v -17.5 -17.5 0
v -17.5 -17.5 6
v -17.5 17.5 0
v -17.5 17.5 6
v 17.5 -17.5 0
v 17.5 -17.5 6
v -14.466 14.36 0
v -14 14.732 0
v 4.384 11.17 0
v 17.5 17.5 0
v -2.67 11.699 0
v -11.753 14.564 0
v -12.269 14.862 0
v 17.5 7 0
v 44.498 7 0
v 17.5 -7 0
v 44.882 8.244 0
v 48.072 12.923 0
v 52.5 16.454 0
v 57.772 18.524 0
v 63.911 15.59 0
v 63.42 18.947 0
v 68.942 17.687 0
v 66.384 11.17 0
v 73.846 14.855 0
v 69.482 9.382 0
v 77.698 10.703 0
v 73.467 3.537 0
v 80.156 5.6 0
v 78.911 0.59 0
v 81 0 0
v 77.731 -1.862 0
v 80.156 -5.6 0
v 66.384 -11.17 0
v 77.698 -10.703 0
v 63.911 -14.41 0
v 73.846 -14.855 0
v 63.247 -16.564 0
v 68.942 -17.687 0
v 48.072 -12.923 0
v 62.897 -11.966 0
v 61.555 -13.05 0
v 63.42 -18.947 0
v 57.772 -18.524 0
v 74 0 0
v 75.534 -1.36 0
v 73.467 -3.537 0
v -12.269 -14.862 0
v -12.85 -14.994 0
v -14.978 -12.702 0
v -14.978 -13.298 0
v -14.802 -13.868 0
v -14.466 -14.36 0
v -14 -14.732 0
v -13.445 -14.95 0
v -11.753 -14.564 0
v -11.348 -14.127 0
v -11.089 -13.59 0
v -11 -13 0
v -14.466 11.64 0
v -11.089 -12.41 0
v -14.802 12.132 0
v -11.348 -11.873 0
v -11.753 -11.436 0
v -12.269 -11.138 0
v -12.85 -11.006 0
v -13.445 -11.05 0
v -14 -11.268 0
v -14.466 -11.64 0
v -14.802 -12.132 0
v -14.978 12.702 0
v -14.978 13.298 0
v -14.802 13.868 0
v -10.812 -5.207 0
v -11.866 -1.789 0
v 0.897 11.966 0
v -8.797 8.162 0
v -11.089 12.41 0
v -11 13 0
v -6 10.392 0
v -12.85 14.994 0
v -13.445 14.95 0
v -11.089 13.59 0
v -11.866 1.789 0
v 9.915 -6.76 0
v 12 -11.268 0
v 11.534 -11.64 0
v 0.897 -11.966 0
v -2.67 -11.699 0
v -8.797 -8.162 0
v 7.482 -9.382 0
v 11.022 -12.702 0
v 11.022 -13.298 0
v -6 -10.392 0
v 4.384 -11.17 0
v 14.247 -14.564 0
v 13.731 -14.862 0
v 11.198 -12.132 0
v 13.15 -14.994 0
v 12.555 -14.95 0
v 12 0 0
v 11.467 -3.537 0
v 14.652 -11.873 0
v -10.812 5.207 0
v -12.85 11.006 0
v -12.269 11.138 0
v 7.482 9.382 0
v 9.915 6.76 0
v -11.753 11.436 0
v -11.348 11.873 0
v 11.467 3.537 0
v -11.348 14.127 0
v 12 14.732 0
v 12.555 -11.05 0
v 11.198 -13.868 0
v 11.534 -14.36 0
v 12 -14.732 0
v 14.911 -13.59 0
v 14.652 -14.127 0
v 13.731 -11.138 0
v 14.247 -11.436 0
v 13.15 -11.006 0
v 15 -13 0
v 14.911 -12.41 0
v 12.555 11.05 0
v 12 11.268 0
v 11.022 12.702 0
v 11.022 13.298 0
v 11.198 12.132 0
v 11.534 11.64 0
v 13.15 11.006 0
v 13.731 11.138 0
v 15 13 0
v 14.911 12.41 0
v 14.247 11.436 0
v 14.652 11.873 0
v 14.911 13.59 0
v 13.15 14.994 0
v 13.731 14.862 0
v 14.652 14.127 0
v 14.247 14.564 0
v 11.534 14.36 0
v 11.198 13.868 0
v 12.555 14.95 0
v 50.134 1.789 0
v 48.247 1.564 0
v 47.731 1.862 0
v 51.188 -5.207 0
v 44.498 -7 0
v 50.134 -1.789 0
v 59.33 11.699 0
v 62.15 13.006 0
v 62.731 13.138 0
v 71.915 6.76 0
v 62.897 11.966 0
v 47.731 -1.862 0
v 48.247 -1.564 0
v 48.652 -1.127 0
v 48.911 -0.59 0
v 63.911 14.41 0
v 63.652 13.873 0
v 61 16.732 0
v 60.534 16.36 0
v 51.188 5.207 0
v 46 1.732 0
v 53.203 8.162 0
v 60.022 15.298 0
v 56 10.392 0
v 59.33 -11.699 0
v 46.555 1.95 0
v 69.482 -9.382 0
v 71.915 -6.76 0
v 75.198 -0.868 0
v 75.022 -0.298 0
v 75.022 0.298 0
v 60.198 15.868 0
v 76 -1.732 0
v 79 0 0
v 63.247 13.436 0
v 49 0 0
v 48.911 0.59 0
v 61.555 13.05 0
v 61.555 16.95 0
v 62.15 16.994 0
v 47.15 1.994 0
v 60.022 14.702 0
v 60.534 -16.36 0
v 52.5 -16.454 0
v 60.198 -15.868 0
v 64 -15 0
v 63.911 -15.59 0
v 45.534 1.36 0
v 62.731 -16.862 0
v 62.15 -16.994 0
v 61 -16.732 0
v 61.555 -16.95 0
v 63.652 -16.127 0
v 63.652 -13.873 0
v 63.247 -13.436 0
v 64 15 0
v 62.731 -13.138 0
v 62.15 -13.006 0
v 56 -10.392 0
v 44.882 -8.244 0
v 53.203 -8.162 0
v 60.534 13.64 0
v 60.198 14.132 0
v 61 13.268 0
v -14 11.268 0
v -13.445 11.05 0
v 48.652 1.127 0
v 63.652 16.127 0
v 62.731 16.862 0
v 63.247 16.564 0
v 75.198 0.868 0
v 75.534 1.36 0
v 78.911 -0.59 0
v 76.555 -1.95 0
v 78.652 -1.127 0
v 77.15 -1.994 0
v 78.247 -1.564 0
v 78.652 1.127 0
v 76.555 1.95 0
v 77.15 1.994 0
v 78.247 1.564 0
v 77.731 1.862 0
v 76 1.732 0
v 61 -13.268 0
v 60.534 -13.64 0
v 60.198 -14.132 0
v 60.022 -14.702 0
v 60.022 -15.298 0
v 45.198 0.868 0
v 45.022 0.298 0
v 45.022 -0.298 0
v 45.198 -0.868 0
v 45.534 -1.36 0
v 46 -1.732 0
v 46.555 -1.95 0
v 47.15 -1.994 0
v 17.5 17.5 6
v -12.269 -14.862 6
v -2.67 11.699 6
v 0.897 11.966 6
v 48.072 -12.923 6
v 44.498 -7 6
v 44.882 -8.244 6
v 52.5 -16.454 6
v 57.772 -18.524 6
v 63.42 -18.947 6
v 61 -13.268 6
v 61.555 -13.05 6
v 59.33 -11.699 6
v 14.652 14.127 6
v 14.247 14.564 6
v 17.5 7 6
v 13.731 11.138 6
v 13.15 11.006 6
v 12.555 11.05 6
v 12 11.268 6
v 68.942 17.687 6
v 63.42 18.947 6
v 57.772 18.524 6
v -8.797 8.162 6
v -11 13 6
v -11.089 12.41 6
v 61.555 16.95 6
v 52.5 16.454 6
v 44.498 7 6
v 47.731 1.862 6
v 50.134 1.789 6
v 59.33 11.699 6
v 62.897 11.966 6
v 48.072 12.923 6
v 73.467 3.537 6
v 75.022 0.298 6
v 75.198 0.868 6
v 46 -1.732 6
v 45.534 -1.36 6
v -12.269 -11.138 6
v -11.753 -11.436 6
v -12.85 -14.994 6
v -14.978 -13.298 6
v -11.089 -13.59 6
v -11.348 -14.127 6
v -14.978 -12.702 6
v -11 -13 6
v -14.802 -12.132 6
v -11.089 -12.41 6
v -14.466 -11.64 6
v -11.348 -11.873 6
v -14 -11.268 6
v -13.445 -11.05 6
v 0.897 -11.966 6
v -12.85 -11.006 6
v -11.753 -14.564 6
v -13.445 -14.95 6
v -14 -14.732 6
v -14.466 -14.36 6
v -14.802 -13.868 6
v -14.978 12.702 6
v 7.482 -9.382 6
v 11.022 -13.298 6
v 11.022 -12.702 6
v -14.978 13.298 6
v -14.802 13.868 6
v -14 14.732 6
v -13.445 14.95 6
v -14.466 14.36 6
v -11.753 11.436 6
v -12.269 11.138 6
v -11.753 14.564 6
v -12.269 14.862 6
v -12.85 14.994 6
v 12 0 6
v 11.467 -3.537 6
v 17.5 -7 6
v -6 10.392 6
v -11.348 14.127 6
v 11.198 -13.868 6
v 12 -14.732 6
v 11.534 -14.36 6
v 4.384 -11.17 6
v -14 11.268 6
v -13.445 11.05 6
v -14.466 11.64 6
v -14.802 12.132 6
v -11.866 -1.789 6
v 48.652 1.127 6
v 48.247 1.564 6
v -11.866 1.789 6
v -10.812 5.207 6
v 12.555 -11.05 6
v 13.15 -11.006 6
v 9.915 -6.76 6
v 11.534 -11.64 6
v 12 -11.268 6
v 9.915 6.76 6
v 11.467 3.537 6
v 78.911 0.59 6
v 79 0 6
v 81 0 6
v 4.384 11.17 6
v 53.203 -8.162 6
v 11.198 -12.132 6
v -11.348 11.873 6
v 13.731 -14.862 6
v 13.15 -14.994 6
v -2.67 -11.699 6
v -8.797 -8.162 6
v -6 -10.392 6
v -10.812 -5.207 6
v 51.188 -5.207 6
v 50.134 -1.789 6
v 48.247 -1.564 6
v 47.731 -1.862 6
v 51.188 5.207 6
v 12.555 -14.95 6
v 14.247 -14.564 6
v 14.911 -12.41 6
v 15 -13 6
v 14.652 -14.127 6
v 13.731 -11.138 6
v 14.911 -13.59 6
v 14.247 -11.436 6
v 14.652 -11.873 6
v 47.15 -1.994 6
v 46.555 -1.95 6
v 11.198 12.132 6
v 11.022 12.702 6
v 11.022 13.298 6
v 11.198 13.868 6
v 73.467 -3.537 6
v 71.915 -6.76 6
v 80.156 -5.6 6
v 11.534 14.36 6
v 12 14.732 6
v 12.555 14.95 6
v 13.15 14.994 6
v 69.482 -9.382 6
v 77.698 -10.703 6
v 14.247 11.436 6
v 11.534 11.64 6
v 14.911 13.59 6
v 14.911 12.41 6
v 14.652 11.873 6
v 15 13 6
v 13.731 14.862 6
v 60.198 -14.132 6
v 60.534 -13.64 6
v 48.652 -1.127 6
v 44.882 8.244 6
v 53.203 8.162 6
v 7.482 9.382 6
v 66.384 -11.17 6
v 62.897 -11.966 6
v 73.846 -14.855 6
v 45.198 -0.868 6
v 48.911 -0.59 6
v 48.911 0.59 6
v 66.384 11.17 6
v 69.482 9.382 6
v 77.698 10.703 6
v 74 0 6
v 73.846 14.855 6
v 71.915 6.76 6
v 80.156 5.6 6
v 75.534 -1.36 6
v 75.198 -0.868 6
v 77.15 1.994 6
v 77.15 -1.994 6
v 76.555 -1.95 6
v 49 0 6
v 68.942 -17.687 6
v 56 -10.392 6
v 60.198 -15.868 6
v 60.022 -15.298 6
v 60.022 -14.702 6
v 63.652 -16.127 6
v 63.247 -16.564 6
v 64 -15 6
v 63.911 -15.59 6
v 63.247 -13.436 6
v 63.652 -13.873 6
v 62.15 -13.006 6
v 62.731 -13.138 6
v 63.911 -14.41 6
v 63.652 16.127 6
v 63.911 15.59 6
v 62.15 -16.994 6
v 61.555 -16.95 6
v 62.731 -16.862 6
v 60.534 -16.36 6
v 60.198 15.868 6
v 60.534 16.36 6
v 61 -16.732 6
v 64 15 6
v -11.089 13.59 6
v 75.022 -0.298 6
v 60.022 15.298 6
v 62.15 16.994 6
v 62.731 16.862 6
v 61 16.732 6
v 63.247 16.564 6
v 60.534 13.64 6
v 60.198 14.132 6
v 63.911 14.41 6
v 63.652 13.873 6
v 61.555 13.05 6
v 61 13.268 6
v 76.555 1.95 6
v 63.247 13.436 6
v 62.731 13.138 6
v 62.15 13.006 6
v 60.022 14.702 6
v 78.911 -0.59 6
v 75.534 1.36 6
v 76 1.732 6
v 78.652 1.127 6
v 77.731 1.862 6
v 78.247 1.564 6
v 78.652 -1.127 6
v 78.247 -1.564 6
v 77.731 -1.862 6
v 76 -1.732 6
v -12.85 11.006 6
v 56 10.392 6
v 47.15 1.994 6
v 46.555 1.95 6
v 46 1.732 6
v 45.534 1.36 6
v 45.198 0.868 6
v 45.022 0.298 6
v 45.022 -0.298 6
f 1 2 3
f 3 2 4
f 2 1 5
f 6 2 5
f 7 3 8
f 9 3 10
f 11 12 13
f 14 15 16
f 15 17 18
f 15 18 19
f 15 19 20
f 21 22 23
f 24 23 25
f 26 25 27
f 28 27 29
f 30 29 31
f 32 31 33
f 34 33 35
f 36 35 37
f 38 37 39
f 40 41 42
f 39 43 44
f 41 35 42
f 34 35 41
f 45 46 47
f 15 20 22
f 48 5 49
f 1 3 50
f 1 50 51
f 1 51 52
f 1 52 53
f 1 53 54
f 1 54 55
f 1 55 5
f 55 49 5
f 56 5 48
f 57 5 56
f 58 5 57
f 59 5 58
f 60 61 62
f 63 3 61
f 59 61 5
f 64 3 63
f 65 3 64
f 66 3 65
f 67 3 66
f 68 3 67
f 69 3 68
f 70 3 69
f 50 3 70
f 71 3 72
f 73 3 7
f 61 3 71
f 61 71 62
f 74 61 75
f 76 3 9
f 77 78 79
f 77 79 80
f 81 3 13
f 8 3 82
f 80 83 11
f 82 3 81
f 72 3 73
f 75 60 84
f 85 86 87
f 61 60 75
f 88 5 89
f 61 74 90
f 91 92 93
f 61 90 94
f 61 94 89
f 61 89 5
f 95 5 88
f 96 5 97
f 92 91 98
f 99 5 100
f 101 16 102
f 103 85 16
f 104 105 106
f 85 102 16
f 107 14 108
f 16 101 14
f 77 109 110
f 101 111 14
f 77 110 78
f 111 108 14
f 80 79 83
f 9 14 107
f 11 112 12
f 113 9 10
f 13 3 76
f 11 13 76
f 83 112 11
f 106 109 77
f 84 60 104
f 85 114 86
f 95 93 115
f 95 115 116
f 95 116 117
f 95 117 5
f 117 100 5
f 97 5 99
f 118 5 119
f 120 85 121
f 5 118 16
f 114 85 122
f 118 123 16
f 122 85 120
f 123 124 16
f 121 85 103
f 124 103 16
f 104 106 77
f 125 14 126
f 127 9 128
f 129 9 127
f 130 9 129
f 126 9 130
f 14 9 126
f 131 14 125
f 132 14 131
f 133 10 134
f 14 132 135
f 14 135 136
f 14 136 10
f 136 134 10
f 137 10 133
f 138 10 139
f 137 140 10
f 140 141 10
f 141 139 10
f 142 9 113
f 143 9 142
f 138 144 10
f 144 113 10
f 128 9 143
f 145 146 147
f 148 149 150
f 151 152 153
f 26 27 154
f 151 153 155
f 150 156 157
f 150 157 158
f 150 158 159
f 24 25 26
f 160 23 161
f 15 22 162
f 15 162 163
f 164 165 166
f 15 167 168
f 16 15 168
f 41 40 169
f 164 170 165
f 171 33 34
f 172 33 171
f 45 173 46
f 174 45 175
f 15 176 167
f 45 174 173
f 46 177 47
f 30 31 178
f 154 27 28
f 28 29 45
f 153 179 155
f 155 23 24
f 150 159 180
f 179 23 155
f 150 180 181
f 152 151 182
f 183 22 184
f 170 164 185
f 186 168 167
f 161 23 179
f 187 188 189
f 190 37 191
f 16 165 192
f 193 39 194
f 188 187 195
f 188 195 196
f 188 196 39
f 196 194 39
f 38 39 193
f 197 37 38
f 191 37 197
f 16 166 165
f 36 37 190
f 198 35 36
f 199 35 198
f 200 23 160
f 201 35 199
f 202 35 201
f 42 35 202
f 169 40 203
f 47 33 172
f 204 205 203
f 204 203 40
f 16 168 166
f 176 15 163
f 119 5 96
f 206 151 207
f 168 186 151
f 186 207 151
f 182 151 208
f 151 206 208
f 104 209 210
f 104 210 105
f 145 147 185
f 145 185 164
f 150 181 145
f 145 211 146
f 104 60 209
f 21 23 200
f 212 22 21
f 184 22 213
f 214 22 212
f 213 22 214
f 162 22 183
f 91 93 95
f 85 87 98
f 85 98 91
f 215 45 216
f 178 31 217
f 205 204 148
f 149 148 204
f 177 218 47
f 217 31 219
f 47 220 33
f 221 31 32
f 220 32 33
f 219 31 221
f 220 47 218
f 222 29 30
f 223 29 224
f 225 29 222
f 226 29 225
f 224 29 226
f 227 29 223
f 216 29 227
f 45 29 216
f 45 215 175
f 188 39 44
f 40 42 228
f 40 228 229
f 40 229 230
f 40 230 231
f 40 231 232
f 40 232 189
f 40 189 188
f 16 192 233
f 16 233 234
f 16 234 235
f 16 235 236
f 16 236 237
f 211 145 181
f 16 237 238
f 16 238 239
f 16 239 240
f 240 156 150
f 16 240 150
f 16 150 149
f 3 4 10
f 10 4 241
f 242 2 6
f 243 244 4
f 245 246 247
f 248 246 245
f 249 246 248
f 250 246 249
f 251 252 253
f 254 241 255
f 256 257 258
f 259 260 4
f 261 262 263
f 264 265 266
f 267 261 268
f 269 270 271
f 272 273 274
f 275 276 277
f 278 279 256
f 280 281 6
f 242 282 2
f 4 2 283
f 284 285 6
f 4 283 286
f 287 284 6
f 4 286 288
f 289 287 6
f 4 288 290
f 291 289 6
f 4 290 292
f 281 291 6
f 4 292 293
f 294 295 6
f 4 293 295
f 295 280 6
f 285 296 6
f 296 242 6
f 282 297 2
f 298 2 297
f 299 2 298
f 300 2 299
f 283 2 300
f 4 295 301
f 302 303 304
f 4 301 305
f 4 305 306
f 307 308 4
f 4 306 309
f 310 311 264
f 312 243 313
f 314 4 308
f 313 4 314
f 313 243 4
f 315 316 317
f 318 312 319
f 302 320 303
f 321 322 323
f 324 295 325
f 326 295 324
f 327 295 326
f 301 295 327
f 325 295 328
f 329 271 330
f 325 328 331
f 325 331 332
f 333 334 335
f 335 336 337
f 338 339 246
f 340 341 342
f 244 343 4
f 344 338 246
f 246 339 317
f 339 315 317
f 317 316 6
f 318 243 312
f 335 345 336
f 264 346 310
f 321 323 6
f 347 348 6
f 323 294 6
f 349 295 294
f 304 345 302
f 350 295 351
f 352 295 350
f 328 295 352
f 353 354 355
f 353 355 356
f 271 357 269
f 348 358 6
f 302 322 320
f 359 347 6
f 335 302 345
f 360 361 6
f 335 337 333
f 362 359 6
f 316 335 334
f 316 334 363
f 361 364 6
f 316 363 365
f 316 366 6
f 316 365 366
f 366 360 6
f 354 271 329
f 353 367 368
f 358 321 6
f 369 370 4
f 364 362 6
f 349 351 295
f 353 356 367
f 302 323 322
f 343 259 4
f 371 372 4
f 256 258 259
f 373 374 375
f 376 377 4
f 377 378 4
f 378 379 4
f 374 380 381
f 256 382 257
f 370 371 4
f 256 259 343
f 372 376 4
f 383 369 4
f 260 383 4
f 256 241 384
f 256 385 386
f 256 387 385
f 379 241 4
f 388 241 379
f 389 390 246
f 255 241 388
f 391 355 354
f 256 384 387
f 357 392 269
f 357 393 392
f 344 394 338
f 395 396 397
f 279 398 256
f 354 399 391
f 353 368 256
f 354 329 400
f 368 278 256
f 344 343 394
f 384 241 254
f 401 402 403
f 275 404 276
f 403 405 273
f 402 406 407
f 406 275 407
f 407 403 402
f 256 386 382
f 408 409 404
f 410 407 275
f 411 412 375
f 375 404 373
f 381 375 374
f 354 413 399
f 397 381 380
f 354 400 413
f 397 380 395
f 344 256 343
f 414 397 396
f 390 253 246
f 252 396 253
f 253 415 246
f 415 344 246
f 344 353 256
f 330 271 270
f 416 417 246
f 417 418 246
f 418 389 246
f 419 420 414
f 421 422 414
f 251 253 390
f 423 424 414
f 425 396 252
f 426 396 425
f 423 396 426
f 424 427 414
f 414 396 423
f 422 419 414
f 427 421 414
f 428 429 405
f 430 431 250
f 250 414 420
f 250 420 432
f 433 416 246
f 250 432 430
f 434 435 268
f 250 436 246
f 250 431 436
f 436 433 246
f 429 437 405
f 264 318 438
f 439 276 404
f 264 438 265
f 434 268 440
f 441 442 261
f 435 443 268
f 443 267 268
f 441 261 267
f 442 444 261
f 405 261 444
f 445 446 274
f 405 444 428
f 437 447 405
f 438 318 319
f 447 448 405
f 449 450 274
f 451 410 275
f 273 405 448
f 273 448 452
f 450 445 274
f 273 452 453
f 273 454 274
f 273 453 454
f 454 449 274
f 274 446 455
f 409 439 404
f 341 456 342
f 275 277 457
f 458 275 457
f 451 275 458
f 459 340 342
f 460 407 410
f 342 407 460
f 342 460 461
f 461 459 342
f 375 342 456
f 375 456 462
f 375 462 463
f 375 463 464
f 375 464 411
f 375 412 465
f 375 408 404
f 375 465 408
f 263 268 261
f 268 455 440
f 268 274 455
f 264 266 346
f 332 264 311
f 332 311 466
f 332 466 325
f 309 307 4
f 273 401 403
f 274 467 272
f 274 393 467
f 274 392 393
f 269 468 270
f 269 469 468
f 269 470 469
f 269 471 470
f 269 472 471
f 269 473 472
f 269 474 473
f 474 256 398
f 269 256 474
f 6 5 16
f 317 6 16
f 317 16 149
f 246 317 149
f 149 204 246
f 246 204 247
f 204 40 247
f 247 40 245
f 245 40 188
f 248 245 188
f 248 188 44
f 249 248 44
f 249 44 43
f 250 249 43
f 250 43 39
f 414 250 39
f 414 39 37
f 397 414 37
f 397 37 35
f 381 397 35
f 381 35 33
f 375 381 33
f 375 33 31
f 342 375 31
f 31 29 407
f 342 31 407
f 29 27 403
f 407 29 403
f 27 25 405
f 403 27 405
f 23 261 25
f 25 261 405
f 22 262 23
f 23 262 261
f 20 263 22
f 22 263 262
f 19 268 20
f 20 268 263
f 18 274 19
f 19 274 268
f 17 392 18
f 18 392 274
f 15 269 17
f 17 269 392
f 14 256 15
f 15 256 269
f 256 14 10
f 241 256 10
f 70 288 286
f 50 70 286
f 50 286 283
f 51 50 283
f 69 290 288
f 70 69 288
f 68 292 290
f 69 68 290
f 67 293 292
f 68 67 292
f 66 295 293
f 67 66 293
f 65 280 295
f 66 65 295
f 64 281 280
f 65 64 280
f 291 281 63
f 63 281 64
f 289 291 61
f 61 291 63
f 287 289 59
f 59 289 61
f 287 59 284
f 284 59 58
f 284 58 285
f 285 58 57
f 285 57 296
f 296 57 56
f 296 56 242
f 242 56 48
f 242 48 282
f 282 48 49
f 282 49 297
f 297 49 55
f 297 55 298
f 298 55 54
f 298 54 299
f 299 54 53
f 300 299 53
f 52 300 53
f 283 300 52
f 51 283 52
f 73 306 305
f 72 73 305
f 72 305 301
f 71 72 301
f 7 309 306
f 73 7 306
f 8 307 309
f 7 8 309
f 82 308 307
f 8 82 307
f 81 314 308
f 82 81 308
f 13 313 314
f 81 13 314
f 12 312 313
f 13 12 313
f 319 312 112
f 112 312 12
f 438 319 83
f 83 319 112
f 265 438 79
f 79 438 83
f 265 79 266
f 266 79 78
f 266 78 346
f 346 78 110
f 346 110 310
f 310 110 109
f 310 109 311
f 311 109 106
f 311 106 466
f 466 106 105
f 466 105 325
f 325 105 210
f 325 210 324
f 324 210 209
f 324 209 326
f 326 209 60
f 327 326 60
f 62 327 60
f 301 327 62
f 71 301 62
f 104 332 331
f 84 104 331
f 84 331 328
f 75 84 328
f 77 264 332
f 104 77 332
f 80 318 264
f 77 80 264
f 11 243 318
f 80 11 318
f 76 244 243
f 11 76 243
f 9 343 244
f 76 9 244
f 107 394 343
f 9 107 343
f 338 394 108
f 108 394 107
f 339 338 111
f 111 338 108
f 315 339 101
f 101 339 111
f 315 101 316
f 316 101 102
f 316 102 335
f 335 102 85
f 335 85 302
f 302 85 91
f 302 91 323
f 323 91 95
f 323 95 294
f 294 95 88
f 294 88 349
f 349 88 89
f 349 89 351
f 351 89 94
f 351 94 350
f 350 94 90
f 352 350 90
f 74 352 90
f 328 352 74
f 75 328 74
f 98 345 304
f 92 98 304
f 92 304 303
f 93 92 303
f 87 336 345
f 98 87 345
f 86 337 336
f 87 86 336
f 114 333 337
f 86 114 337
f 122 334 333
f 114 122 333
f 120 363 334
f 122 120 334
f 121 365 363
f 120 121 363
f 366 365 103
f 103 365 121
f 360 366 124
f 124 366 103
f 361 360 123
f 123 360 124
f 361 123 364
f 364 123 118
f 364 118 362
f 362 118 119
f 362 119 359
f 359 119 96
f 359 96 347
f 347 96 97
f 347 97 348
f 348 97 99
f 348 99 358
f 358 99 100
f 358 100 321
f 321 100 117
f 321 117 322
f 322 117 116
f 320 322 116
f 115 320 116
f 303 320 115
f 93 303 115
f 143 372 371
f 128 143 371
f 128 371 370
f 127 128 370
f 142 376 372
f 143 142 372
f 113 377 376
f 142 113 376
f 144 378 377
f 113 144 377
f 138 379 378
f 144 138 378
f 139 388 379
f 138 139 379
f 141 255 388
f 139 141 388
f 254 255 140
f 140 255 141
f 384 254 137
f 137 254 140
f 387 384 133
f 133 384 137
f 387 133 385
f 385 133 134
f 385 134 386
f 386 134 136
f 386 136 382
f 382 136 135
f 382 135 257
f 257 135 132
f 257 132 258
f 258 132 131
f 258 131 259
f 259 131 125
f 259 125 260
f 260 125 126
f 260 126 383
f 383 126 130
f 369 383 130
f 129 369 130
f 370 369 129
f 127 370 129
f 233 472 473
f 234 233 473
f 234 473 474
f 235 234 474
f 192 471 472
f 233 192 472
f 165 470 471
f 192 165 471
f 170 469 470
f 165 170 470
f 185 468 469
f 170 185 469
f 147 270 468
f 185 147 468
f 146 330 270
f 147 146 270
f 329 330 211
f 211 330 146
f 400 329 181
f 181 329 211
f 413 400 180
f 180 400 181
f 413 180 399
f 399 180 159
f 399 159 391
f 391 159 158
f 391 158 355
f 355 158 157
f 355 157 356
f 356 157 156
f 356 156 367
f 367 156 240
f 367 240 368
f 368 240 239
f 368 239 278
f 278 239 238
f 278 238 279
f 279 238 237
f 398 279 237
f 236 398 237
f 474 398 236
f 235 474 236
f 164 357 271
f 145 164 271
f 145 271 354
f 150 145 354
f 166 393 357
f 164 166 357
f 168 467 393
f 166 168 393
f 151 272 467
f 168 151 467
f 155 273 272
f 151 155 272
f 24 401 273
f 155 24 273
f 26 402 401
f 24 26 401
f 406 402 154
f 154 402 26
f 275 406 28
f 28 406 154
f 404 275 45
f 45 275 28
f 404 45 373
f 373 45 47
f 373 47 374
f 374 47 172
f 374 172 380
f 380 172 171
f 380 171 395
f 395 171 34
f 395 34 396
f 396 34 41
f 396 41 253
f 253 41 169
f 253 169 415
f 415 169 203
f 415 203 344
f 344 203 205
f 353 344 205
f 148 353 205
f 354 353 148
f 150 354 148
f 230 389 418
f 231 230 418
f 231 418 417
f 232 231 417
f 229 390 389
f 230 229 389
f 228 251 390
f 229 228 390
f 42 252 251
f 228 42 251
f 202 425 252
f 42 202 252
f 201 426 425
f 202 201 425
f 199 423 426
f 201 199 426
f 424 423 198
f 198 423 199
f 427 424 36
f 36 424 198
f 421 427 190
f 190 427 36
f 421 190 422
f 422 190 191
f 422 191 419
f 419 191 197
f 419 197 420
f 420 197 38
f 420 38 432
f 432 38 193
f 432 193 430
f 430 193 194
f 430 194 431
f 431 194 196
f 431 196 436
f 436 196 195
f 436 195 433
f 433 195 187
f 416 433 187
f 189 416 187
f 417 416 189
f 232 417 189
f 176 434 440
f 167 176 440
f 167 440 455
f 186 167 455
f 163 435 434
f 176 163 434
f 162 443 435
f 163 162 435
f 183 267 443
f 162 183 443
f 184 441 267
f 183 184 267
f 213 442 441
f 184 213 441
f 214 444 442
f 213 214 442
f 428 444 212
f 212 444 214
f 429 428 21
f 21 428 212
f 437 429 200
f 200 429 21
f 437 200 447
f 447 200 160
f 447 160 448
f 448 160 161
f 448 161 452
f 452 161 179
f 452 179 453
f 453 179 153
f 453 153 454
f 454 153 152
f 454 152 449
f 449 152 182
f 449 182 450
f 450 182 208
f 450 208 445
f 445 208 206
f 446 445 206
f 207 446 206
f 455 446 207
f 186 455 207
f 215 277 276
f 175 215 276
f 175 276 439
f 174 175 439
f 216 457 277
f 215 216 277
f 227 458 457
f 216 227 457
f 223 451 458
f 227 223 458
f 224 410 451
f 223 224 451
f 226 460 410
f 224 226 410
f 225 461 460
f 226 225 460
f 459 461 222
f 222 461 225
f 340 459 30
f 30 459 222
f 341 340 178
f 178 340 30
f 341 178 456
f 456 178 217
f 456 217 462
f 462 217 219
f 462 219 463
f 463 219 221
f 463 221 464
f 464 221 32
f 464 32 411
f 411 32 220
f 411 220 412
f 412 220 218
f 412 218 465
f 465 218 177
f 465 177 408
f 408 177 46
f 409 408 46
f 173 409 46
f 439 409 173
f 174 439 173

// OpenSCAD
$fn = 21;
difference(){
	union(){
		translate([0,0,3])cube([35,35,6],center=true);
		translate([62,0,0])cylinder(r = 19, h = 6);
		translate([0,-7,0])cube([62,14,6]);

	}
	translate([13,13,-1])cylinder(r = 2, h = 8);
	translate([-13,13,-1])cylinder(r = 2, h = 8);
	translate([13,-13,-1])cylinder(r = 2, h = 8);
	translate([-13,-13,-1])cylinder(r = 2, h = 8);
	
	translate([62,-15,-1])cylinder(r = 2, h = 8);
	translate([62,15,-1])cylinder(r = 2, h = 8);
	translate([62+15,0,-1])cylinder(r = 2, h = 8);
	translate([62-15,0,-1])cylinder(r = 2, h = 8);
	
	translate([0,0,-1])cylinder(r = 12, h = 8);
	translate([62,0,-1])cylinder(r = 12, h = 8);
}
